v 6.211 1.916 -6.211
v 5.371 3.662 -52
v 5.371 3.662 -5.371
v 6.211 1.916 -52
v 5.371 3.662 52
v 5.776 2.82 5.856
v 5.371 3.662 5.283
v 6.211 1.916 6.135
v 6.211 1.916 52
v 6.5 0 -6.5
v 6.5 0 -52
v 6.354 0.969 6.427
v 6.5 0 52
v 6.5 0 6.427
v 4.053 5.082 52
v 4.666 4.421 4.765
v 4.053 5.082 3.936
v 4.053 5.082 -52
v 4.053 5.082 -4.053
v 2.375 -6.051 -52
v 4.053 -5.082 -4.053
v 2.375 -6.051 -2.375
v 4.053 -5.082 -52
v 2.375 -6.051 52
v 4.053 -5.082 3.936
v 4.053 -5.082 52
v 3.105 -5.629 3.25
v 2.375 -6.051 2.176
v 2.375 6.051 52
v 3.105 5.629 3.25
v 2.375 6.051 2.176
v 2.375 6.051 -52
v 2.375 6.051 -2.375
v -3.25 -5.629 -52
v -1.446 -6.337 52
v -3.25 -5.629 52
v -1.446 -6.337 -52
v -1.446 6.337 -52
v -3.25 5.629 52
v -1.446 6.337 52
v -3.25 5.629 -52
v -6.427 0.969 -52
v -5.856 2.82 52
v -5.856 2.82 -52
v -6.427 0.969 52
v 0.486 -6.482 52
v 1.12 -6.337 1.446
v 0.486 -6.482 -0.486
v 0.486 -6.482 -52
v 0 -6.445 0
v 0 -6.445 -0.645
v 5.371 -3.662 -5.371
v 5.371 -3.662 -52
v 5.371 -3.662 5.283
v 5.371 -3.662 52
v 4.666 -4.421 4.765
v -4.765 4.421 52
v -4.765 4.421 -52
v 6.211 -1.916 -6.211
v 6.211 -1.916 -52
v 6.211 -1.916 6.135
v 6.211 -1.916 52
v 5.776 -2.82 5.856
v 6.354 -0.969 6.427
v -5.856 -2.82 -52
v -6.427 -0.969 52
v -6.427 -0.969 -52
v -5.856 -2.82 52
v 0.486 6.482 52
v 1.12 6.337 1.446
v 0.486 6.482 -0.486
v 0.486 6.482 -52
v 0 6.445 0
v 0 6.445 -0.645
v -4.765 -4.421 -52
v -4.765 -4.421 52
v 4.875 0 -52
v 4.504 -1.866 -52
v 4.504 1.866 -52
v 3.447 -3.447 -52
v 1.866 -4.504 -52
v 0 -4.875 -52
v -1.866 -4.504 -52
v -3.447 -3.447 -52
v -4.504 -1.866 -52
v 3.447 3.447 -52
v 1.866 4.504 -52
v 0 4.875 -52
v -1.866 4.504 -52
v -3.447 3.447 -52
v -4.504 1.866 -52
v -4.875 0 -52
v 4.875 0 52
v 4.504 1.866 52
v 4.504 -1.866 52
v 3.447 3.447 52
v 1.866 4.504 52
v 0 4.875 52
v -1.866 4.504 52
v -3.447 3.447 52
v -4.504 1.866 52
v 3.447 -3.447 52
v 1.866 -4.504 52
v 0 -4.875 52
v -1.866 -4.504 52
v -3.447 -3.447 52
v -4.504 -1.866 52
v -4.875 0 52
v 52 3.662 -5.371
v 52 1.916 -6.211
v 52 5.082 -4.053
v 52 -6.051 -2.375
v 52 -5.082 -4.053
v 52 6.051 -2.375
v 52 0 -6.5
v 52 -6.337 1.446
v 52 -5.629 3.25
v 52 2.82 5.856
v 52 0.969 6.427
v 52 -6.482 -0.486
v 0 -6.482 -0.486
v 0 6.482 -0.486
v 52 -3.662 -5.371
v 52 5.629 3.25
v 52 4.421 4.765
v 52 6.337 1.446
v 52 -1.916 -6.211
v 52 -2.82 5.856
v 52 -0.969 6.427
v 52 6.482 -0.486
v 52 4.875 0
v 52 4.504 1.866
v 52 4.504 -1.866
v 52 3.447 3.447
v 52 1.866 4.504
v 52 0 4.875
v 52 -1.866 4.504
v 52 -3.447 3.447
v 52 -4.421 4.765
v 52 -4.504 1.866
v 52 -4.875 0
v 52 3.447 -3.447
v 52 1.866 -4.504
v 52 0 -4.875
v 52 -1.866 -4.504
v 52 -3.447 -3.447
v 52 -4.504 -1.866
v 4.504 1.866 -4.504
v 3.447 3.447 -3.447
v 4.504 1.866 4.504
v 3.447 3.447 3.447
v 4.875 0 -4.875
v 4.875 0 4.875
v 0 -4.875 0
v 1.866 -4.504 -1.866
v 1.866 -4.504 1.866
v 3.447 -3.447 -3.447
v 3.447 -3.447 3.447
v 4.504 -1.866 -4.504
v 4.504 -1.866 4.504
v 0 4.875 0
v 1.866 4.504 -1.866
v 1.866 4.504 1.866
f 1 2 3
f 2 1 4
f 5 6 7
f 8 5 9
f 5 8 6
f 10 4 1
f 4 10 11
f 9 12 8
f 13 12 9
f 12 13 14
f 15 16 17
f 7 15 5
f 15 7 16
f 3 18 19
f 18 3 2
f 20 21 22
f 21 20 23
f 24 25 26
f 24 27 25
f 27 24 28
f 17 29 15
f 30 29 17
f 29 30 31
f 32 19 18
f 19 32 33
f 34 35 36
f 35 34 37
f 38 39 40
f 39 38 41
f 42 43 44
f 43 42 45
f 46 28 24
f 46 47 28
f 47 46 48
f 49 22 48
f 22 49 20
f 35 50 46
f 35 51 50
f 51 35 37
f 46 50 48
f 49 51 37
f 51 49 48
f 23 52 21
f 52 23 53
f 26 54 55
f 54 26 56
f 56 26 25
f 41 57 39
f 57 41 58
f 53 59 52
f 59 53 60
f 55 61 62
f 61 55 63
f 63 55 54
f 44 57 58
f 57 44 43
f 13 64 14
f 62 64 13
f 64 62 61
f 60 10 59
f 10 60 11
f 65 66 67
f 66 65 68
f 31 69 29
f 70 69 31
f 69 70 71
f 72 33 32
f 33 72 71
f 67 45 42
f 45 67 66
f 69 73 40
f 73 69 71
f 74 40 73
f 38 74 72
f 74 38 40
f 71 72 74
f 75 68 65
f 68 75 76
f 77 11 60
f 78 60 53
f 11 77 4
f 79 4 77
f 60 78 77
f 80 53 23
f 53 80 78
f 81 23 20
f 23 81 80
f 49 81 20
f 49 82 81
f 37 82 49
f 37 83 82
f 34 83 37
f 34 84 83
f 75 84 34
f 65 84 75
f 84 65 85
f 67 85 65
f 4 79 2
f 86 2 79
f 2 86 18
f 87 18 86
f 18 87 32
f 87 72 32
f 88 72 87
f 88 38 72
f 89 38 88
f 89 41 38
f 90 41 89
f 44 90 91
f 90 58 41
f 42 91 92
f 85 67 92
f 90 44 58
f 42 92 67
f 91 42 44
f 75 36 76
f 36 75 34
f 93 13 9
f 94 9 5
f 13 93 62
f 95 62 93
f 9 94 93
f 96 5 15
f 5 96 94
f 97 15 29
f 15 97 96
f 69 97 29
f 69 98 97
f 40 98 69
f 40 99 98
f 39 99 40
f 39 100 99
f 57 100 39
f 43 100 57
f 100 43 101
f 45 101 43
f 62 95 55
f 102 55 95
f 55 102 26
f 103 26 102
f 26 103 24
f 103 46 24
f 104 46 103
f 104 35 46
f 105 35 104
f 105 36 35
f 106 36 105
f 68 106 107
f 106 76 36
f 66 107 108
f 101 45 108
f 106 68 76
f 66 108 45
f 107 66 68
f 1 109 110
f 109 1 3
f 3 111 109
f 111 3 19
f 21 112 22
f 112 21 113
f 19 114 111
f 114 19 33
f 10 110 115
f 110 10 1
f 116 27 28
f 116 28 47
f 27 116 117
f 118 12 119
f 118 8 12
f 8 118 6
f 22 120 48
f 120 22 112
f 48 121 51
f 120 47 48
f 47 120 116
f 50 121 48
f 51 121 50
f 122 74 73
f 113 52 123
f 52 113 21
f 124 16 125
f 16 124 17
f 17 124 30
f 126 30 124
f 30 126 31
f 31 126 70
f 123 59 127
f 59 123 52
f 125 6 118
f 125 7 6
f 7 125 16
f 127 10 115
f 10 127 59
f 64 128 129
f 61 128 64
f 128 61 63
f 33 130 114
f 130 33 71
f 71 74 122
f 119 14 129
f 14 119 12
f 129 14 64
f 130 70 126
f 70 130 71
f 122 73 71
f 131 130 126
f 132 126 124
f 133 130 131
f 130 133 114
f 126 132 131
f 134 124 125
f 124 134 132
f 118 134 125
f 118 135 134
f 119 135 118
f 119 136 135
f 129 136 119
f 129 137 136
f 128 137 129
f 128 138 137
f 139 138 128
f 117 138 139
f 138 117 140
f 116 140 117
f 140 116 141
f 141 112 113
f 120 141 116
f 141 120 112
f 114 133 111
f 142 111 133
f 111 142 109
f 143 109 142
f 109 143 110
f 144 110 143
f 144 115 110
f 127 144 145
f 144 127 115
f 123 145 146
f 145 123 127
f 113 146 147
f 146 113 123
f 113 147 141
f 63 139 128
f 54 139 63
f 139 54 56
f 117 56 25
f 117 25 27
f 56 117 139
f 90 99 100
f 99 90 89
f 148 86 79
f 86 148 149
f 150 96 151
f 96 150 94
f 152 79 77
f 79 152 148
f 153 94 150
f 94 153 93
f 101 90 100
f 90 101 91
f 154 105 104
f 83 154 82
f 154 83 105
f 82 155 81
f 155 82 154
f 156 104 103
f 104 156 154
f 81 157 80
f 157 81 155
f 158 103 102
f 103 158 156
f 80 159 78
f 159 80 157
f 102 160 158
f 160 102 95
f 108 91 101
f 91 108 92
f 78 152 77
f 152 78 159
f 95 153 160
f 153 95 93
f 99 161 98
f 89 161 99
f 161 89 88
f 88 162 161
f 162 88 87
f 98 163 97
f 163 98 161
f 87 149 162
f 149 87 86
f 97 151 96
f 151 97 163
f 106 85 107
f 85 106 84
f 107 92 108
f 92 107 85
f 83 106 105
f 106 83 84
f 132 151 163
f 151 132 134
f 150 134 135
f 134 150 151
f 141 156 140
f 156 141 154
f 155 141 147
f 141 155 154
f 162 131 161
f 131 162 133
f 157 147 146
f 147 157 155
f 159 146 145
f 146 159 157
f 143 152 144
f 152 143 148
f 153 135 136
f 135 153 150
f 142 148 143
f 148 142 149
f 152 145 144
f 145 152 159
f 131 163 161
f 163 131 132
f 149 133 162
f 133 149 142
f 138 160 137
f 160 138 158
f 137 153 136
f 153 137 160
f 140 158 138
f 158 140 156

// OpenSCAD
hose_diameter = 13;

module T() {
    difference() {
        union() {    
            translate([0, 0, -4*hose_diameter])
            cylinder( d = hose_diameter, h = 8 * hose_diameter );
    
            rotate([0, 90,  0])
            cylinder( d = hose_diameter, h = 4 * hose_diameter );
        }
        translate([0, 0, -5*hose_diameter])
        cylinder( d = 0.75 * hose_diameter, h = 10 * hose_diameter );
    
        rotate([0, 90, 0])
        cylinder( d = 0.75 * hose_diameter, h = 5 * hose_diameter );
    }
}

translate([ 0, 0, 0*hose_diameter]) T();
//translate([ 0, 0, 4*hose_diameter]) T();
//translate([ 0, 0, 8*hose_diameter]) T();
//translate([ 0, 0,12*hose_diameter]) T();
//translate([ 0, 0,16*hose_diameter]) T();
